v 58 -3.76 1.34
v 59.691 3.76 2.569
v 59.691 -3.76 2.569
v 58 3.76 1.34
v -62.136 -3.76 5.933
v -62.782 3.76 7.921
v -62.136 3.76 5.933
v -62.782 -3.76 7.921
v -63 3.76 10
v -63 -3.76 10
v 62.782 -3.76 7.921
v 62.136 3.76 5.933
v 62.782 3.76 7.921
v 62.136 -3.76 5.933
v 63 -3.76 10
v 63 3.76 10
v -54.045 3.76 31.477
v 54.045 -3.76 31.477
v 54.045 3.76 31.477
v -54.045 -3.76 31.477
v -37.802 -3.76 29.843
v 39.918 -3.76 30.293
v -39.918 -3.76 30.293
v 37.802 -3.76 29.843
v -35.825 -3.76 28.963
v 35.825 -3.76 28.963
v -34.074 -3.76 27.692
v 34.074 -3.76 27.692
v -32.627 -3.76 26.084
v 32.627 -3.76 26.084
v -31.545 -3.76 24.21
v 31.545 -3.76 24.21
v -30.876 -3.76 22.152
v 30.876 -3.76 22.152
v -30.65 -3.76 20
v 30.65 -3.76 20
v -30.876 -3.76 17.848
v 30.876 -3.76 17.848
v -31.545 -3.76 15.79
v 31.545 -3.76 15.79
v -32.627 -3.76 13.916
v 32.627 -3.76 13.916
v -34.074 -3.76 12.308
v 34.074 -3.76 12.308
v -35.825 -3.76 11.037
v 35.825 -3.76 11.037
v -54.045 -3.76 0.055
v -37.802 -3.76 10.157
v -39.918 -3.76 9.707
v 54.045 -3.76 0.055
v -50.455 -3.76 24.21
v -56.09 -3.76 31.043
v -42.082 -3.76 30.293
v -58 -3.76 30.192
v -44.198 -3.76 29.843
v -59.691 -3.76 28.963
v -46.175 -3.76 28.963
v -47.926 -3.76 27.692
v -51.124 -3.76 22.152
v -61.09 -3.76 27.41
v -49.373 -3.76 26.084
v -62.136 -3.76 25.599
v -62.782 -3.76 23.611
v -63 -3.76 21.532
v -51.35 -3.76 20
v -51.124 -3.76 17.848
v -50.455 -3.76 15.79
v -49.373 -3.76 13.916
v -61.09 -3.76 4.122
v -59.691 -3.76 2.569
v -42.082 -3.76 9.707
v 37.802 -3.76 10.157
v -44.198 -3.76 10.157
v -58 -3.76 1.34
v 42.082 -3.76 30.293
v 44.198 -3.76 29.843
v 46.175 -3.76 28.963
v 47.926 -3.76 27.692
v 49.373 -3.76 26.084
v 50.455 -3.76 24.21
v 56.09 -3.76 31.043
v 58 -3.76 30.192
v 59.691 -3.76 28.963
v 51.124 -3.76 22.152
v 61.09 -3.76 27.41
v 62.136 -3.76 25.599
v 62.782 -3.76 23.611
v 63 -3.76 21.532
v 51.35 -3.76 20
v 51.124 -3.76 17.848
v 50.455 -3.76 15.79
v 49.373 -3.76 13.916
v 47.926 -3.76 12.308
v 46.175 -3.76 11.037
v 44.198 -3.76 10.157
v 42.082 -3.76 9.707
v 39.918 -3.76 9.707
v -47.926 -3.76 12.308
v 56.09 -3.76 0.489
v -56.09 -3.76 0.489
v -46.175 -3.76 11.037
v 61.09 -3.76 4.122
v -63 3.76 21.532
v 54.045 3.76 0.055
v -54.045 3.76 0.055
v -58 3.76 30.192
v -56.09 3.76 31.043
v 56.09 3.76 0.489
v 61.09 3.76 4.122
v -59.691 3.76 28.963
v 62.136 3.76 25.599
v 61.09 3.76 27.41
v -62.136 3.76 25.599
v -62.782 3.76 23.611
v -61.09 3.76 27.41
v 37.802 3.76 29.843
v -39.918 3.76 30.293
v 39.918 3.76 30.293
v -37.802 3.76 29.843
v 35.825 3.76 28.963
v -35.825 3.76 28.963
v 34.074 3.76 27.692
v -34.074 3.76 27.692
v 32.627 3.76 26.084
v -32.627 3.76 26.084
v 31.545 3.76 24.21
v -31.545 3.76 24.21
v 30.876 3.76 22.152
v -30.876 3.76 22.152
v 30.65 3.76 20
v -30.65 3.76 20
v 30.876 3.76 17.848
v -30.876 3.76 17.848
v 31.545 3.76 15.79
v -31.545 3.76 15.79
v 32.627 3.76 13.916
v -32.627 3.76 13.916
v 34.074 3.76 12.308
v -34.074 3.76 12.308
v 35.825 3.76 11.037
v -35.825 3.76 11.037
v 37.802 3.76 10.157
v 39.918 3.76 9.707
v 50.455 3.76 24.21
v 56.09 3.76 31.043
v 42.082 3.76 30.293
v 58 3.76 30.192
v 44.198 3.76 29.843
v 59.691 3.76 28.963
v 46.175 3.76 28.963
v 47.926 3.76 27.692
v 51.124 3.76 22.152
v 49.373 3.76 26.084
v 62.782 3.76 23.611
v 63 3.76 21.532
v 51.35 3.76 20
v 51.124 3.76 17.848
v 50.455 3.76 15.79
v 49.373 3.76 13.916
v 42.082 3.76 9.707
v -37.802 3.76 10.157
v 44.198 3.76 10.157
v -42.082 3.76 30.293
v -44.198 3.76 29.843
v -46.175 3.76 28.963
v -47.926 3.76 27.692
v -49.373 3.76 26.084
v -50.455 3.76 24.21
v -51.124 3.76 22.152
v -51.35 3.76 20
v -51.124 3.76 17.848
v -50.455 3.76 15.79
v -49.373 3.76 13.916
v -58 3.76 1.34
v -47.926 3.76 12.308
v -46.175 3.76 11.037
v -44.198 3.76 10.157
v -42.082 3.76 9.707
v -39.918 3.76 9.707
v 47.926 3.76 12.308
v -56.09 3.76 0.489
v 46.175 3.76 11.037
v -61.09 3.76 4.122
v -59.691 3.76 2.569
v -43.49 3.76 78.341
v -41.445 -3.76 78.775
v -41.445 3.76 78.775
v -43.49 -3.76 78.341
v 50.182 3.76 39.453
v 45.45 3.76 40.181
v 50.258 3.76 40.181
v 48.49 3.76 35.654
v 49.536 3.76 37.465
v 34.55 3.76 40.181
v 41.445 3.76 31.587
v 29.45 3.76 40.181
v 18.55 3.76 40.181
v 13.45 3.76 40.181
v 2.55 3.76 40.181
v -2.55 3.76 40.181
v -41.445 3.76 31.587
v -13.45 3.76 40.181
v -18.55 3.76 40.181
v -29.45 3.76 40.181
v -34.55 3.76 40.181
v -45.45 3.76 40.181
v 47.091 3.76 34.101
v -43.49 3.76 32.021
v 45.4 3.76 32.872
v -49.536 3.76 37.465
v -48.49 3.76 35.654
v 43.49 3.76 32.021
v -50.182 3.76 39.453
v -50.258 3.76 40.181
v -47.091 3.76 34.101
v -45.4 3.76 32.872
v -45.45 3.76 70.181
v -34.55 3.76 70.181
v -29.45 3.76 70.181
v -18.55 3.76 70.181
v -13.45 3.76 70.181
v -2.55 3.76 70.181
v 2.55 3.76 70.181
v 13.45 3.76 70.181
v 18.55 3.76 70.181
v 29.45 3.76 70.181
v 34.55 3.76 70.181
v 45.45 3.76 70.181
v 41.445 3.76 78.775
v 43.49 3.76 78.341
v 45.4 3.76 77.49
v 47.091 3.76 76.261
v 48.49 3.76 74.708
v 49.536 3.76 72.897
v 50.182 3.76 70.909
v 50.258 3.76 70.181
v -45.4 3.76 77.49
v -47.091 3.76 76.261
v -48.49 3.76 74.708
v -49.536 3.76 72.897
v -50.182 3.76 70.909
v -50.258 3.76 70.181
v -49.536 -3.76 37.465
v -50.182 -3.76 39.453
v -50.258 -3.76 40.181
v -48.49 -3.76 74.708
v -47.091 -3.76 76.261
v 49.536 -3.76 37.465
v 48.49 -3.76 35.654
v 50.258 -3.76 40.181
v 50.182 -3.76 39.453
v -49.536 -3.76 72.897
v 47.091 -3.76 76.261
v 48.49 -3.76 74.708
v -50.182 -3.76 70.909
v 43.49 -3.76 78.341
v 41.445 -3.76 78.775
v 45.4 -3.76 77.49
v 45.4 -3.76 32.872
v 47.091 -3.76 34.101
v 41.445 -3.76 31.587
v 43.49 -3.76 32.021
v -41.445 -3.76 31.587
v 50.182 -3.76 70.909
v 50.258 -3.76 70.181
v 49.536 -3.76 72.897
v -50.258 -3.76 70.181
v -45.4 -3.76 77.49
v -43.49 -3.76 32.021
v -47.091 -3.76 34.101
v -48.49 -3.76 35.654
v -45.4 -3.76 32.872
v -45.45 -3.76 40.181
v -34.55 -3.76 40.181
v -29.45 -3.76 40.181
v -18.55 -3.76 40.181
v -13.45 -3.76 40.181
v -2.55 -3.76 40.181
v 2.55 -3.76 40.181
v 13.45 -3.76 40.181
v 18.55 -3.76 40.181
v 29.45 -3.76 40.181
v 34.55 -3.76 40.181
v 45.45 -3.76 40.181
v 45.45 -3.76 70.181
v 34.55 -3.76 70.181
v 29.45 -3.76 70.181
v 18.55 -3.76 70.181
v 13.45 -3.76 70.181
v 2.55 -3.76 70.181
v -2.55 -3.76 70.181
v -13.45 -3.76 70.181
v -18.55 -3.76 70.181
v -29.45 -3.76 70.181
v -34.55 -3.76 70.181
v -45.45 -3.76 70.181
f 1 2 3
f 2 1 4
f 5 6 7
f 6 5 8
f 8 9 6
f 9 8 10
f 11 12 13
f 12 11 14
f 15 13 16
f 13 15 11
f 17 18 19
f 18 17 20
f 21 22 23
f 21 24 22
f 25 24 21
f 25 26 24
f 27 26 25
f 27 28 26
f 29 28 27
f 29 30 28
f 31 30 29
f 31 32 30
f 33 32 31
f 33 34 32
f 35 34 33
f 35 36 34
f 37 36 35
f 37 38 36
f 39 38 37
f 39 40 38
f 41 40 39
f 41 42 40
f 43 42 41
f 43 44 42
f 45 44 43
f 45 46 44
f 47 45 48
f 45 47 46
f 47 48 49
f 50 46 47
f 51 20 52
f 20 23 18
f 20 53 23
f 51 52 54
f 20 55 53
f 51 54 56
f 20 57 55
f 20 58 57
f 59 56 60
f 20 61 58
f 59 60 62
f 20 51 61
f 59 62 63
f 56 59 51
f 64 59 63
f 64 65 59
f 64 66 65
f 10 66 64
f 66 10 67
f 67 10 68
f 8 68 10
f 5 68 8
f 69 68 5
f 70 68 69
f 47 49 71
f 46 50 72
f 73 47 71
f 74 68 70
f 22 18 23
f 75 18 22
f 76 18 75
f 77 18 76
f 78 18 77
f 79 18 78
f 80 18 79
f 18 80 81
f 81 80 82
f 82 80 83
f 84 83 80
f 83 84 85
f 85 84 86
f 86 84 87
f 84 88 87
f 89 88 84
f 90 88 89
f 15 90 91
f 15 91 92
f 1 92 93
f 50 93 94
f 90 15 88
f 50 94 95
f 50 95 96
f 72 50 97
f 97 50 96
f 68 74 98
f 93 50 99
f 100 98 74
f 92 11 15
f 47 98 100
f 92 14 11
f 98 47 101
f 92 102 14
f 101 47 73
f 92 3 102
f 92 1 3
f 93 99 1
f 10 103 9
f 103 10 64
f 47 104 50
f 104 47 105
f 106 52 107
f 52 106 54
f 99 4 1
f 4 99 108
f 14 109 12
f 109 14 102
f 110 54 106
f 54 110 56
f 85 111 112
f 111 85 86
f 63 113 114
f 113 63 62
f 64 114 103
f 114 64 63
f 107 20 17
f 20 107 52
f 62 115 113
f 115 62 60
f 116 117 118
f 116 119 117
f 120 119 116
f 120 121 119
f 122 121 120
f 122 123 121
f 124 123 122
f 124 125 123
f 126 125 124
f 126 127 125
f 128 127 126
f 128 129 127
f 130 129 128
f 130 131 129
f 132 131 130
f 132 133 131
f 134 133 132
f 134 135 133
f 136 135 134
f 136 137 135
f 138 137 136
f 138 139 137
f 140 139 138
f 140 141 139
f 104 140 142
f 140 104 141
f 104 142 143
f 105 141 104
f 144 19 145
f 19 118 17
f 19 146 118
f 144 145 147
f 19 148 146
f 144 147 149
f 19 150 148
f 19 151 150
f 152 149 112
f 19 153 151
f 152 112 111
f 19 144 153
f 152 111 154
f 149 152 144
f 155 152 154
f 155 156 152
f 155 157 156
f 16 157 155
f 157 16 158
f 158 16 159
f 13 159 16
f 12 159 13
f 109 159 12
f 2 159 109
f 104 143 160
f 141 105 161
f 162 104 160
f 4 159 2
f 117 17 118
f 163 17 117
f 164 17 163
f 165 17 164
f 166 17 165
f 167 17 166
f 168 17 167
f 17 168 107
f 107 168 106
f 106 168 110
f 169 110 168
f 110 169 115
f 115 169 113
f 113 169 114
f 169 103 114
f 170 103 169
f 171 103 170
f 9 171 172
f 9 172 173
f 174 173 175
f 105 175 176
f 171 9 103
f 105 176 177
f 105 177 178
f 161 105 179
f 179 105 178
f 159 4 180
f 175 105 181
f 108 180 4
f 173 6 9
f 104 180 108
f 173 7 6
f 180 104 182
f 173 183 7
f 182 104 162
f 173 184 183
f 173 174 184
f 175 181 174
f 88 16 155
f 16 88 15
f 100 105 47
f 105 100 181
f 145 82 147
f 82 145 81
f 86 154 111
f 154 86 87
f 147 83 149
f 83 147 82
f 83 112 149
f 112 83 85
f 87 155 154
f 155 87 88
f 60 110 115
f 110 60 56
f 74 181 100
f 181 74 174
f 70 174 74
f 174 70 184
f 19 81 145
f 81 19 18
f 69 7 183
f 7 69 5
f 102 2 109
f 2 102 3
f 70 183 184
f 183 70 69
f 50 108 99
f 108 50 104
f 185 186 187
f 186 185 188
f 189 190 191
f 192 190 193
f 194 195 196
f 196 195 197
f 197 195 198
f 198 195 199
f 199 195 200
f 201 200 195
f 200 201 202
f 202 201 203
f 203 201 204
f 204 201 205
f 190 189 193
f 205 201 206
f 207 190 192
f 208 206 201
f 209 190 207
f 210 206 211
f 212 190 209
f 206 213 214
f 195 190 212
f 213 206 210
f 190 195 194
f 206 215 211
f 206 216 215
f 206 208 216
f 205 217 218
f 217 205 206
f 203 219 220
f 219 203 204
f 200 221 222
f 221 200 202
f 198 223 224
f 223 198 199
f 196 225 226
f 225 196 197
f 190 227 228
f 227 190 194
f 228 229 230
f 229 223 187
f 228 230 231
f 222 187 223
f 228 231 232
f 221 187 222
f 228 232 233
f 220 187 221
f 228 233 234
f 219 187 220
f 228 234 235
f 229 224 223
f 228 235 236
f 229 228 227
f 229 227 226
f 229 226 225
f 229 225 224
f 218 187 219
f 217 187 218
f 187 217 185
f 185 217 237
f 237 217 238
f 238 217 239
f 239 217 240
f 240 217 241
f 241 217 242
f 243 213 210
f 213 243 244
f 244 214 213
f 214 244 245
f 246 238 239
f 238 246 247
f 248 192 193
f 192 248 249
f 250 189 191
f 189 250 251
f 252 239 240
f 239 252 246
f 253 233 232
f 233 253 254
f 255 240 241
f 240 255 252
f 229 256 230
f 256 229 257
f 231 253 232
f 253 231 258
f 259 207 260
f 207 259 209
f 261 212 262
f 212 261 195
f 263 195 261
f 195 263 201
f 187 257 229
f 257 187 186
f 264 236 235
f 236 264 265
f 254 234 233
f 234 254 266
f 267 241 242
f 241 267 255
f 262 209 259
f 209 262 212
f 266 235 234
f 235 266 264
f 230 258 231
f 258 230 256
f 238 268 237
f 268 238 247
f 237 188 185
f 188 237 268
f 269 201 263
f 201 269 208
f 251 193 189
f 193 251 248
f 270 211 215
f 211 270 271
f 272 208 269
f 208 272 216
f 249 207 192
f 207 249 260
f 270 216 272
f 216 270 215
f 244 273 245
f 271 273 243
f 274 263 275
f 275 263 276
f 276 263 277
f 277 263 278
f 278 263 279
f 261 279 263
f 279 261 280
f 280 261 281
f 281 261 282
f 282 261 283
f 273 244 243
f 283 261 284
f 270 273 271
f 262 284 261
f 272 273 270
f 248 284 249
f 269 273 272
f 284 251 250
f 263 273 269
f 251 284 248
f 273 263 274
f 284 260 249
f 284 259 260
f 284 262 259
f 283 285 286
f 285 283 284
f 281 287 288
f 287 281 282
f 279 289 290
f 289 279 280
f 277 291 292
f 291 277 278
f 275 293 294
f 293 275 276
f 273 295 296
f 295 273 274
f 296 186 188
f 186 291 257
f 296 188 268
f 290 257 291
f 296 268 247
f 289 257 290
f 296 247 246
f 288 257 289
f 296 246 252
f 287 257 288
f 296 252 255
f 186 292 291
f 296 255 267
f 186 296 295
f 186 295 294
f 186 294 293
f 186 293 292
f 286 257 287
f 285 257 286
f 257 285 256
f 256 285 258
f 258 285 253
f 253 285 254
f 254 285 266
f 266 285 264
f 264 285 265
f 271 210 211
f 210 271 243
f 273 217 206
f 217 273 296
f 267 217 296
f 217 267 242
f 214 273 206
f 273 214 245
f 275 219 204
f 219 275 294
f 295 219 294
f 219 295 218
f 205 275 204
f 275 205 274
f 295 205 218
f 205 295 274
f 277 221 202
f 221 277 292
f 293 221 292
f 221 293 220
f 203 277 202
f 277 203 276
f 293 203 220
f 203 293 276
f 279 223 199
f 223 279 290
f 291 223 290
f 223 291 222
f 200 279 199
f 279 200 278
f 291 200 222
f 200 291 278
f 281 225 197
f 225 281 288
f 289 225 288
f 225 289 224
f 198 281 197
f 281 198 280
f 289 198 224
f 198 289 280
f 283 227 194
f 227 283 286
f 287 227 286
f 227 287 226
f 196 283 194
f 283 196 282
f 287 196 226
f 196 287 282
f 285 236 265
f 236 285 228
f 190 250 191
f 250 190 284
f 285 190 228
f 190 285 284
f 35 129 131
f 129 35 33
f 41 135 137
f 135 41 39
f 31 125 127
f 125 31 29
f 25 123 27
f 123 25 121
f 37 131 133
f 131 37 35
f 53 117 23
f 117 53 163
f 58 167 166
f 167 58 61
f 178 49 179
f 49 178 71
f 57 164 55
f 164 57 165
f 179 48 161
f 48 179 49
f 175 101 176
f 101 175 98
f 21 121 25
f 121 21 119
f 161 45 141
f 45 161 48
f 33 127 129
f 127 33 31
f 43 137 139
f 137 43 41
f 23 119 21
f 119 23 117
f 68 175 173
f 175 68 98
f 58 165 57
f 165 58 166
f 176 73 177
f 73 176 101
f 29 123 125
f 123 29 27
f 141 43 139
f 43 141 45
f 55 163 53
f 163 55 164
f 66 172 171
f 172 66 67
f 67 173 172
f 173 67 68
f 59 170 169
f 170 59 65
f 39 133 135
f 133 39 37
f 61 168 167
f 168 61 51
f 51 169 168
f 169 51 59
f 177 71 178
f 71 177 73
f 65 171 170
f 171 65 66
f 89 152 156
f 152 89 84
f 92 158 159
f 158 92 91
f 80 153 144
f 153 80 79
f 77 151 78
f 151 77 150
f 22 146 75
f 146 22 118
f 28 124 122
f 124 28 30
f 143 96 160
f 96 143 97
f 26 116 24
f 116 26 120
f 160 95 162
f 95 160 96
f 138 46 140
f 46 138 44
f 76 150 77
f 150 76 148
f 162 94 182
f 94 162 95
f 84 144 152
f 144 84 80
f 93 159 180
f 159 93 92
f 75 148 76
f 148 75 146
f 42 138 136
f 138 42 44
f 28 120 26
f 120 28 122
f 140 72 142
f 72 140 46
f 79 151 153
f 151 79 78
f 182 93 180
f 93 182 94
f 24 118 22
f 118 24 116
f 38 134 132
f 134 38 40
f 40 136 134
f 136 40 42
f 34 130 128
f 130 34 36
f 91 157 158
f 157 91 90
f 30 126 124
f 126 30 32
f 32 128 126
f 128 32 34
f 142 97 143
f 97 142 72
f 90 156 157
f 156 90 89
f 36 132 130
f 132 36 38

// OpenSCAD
/* doodle-meta {"version":1,"parameters":{"width":{"label":"Overall width","description":"Changes the body width","unit":"mm","feature":"body_width"},"height":{"label":"Overall height","description":"Changes the body height","unit":"mm","feature":"body_height"},"thickness":{"label":"Plate thickness","description":"Changes the plate depth","unit":"mm","feature":"body_thickness"},"slot_count":{"label":"Slot count","description":"Number of vertical slots","unit":"count","feature":"slots"},"slot_width":{"label":"Slot width","description":"Width of each vertical slot","unit":"mm","feature":"slots"},"slot_height":{"label":"Slot height","description":"Height of each vertical slot","unit":"mm","feature":"slots"},"slot_pitch":{"label":"Slot pitch","description":"Center-to-center distance between slots","unit":"mm","feature":"slots"},"headlight_diameter":{"label":"Headlight diameter","description":"Diameter of circular headlight cutouts","unit":"mm","feature":"headlights"},"headlight_x_offset":{"label":"Headlight offset","description":"Horizontal distance of headlights from center","unit":"mm","feature":"headlights"},"headlight_z_offset":{"label":"Headlight height","description":"Vertical center of headlights from bottom","unit":"mm","feature":"headlights"}},"features":{"body_width":{"kind":"dimension","axis":"x","label":"Overall width"},"body_height":{"kind":"dimension","axis":"z","label":"Overall height"},"body_thickness":{"kind":"dimension","axis":"y","label":"Plate thickness"},"slots":{"kind":"region","label":"Vertical slots","min":[{"parameter":"width","scale":0.25,"offset":0},{"parameter":"thickness","scale":-0.1,"offset":0},{"parameter":"height","scale":0.13,"offset":0}],"max":[{"parameter":"width","scale":0.75,"offset":0},{"parameter":"thickness","scale":1.1,"offset":0},{"parameter":"height","scale":0.74,"offset":0}]},"headlights":{"kind":"region","label":"Headlight cutouts","min":[{"parameter":"width","scale":0.09,"offset":0},{"parameter":"thickness","scale":-0.1,"offset":0},{"parameter":"height","scale":0.25,"offset":0}],"max":[{"parameter":"width","scale":0.91,"offset":0},{"parameter":"thickness","scale":1.1,"offset":0},{"parameter":"height","scale":0.55,"offset":0}]}}} */

// Parameters
width = 126.0;
height = 78.83;
thickness = 7.52;
slot_count = 7;
slot_width = 5.1;
slot_height = 30.0;
slot_pitch = 16.0;
headlight_diameter = 20.7;
headlight_x_offset = 41.0;
headlight_z_offset = 20.0;

// Derived constants
eps = 0.1;
corner_radius = 10;
shoulder_height = height * 0.4; // Lower section height
upper_width = width * 0.8;      // Upper section width

// Module: grille body profile in XZ plane, extruded along Y
module grille_body() {
    // Profile is in XZ plane, extruded along Y
    // We draw in XY then rotate to XZ, then extrude along Y
    
    // Lower section (wide)
    translate([0, 0, shoulder_height/2])
        rotate([90, 0, 0])
            linear_extrude(height=thickness, center=true)
                hull() {
                    translate([-width/2 + corner_radius, -shoulder_height/2 + corner_radius]) circle(r=corner_radius);
                    translate([width/2 - corner_radius, -shoulder_height/2 + corner_radius]) circle(r=corner_radius);
                    translate([-width/2 + corner_radius, shoulder_height/2 - corner_radius]) circle(r=corner_radius);
                    translate([width/2 - corner_radius, shoulder_height/2 - corner_radius]) circle(r=corner_radius);
                }

    // Upper section (narrower)
    translate([0, 0, shoulder_height + (height - shoulder_height)/2])
        rotate([90, 0, 0])
            linear_extrude(height=thickness, center=true)
                hull() {
                    translate([-upper_width/2 + corner_radius, -(height - shoulder_height)/2 + corner_radius]) circle(r=corner_radius);
                    translate([upper_width/2 - corner_radius, -(height - shoulder_height)/2 + corner_radius]) circle(r=corner_radius);
                    translate([-upper_width/2 + corner_radius, (height - shoulder_height)/2 - corner_radius]) circle(r=corner_radius);
                    translate([upper_width/2 - corner_radius, (height - shoulder_height)/2 - corner_radius]) circle(r=corner_radius);
                }
}

// Module: vertical slot cutter (box through Y-axis)
module slot_cutter_box() {
    cube([slot_width, thickness + 2*eps, slot_height], center=true);
}

// Module: headlight circular cutter (cylinder through Y-axis)
module headlight_cutter() {
    rotate([90, 0, 0])
        cylinder(h=thickness + 2*eps, d=headlight_diameter, center=true);
}

// Main Design
difference() {
    // Positive body
    grille_body();
    
    // Subtract vertical slots
    for (i = [0 : slot_count - 1]) {
        slot_x = -(slot_count - 1) * slot_pitch / 2 + i * slot_pitch;
        // Slot center Z: centered in upper section
        slot_z = shoulder_height + (height - shoulder_height) / 2;
        
        translate([slot_x, 0, slot_z])
            slot_cutter_box();
    }
    
    // Subtract headlight cutouts (left and right)
    translate([-headlight_x_offset, 0, headlight_z_offset])
        headlight_cutter();
        
    translate([headlight_x_offset, 0, headlight_z_offset])
        headlight_cutter();
}
